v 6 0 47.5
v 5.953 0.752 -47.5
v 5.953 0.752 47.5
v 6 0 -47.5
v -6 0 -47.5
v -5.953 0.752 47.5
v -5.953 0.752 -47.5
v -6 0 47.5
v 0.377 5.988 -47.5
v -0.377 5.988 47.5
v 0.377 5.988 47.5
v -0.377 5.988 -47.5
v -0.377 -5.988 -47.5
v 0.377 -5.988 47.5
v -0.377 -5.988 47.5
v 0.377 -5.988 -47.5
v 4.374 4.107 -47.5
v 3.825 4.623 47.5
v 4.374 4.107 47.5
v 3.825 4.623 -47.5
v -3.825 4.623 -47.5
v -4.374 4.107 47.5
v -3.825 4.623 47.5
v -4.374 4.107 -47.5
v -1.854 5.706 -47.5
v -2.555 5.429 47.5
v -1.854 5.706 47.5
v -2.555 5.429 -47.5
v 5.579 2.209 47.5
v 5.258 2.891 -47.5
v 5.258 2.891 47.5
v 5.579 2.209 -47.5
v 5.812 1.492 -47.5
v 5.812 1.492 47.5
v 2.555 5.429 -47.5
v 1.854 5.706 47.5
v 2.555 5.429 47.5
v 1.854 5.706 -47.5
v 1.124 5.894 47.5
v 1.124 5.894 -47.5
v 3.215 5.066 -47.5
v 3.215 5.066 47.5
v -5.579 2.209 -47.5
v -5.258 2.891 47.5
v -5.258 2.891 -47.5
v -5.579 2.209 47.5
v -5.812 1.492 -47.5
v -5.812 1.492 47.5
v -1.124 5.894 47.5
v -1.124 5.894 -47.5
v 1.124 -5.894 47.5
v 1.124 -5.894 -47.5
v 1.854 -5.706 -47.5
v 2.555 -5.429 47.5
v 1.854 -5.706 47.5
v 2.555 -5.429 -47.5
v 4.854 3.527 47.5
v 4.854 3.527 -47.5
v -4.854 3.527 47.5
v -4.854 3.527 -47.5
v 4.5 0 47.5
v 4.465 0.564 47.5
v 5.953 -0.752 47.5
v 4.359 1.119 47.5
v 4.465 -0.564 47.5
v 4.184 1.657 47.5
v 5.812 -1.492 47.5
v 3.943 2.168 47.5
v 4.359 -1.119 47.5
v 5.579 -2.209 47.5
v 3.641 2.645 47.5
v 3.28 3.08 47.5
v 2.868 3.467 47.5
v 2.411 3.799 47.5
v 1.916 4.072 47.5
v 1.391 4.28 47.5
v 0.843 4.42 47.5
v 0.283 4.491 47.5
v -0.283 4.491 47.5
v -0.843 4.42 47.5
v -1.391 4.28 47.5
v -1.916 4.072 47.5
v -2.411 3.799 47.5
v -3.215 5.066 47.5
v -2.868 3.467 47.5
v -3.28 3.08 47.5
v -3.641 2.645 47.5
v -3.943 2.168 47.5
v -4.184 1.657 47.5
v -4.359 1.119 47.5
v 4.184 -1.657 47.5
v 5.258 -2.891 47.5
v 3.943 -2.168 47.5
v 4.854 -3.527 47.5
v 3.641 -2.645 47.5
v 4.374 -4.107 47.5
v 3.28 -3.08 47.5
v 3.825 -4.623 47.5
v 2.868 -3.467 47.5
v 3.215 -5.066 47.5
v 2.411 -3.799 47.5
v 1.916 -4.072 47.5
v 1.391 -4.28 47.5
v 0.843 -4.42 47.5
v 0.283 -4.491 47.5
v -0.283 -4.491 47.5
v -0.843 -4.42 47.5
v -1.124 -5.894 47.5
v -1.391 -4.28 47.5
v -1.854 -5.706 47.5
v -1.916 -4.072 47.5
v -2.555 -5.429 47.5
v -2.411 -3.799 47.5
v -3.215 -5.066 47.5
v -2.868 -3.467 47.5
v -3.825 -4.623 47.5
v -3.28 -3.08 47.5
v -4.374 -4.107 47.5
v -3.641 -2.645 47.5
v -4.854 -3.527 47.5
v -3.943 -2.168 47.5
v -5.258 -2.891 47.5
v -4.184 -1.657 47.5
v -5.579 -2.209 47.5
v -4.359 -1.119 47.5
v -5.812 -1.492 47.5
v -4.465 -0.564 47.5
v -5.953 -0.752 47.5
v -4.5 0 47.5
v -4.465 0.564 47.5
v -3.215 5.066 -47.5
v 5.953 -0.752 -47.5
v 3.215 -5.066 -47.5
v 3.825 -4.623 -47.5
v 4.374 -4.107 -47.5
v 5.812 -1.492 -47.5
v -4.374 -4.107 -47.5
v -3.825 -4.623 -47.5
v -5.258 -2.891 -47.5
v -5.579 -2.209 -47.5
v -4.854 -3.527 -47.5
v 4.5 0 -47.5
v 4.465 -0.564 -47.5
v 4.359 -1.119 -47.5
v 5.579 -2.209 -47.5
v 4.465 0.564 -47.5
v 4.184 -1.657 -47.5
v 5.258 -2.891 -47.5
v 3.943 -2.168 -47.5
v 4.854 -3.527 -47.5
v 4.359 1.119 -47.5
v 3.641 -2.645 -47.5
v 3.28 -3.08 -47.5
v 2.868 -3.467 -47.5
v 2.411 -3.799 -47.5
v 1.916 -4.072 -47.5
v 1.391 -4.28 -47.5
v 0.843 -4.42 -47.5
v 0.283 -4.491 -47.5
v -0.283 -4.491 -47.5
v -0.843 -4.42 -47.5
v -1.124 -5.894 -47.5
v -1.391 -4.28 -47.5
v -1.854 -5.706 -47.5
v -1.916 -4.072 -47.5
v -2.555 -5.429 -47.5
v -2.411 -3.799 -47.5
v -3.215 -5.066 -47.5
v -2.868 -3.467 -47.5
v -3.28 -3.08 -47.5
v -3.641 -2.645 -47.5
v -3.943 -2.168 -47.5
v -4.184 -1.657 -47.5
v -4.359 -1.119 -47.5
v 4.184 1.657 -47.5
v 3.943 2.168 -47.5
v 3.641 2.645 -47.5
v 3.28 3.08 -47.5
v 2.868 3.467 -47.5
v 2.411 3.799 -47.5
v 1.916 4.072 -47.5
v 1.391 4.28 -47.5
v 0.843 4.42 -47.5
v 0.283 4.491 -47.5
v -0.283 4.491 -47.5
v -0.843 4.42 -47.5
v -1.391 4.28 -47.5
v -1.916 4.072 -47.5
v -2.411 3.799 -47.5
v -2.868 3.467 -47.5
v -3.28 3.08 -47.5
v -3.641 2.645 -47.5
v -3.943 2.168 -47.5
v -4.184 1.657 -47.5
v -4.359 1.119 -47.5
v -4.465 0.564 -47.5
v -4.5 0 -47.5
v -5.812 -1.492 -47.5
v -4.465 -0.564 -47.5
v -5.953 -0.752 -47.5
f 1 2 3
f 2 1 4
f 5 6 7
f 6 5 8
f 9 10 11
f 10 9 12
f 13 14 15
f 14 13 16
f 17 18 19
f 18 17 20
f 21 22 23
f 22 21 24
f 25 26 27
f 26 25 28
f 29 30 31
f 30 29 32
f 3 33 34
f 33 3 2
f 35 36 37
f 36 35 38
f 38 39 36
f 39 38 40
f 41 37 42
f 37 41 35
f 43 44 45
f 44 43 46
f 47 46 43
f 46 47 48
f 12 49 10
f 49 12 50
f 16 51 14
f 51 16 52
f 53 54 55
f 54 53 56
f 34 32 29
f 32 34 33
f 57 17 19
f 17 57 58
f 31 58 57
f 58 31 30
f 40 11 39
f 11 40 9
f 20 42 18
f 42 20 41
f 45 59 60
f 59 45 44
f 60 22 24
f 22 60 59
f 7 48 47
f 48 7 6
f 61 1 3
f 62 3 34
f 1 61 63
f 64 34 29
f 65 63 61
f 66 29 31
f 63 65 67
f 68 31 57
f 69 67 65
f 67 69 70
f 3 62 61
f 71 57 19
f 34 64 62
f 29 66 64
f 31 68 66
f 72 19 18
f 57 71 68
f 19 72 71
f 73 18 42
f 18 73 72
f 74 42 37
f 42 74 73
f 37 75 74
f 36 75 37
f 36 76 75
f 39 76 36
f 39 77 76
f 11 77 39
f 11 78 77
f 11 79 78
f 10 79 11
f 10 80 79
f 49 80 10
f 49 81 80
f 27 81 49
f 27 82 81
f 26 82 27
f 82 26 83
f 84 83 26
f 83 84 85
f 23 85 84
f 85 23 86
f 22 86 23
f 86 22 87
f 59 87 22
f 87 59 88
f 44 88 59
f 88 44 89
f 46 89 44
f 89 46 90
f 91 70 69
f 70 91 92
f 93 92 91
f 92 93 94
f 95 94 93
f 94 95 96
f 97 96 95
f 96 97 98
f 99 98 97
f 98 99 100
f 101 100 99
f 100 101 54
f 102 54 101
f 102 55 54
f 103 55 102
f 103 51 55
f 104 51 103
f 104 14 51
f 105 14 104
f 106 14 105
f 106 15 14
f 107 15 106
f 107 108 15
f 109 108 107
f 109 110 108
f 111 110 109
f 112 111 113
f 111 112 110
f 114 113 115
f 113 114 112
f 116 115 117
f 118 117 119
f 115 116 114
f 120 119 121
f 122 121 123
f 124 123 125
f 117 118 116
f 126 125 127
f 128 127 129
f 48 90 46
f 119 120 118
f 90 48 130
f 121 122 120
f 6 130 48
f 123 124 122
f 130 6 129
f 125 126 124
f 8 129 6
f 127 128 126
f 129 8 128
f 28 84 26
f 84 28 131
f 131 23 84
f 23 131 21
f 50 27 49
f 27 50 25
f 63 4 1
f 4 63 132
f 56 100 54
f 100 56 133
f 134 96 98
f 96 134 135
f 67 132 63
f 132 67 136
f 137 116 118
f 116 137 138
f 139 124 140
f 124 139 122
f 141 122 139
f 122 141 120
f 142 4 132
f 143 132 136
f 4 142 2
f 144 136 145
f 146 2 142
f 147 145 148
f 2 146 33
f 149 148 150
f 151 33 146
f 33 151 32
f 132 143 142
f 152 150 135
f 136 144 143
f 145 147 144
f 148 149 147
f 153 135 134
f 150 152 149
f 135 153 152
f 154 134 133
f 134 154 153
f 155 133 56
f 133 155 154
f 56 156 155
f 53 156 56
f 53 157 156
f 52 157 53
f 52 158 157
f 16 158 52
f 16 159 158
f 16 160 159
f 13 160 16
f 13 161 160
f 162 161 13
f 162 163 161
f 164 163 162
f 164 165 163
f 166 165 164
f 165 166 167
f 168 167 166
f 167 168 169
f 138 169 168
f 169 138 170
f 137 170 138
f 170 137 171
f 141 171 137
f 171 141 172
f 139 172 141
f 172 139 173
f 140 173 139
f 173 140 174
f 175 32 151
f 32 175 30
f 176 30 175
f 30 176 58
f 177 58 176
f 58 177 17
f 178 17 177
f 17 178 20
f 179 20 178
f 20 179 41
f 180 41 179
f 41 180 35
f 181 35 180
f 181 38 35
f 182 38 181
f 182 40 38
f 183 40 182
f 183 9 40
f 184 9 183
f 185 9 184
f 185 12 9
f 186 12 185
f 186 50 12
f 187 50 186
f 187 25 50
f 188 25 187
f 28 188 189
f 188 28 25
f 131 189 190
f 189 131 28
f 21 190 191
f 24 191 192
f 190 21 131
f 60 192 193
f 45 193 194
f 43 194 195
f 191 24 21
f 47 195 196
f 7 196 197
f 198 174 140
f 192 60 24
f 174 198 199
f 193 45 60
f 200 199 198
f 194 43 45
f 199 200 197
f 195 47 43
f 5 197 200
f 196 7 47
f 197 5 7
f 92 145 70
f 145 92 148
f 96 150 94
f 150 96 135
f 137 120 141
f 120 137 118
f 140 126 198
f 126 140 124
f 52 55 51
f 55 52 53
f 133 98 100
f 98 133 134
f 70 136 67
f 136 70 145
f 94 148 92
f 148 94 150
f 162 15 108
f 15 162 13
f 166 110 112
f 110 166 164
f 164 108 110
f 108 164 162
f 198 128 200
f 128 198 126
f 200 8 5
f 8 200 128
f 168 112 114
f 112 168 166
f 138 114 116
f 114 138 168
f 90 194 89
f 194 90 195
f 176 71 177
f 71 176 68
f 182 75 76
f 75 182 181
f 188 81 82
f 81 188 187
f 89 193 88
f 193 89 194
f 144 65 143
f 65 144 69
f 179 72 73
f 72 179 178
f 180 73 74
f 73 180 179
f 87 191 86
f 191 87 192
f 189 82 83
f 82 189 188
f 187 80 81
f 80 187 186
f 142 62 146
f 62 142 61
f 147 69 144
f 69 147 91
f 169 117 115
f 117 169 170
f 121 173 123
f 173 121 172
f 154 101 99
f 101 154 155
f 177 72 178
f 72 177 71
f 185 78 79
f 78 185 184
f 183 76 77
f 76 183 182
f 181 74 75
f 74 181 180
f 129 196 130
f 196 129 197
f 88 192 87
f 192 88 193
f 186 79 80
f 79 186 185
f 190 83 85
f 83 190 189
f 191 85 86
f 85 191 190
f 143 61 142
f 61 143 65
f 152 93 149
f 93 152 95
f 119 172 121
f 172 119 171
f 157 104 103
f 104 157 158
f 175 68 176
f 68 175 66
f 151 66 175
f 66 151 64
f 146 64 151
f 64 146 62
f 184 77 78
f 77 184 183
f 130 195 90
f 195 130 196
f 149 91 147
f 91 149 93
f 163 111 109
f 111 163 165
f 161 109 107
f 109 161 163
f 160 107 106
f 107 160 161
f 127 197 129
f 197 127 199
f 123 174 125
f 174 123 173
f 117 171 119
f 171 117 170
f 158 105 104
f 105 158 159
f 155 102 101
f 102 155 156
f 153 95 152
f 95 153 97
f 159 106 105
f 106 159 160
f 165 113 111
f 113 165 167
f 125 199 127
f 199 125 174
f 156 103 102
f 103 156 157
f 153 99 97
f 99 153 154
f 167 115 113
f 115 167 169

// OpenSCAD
$fn = 50;


difference() {
	union() {
		translate(v = [0, 0, -47.5000000000]) {
			cylinder(h = 95, r = 6.0000000000);
		}
	}
	union() {
		translate(v = [0, 0, -100.0000000000]) {
			cylinder(h = 200, r = 4.5000000000);
		}
	}
}
